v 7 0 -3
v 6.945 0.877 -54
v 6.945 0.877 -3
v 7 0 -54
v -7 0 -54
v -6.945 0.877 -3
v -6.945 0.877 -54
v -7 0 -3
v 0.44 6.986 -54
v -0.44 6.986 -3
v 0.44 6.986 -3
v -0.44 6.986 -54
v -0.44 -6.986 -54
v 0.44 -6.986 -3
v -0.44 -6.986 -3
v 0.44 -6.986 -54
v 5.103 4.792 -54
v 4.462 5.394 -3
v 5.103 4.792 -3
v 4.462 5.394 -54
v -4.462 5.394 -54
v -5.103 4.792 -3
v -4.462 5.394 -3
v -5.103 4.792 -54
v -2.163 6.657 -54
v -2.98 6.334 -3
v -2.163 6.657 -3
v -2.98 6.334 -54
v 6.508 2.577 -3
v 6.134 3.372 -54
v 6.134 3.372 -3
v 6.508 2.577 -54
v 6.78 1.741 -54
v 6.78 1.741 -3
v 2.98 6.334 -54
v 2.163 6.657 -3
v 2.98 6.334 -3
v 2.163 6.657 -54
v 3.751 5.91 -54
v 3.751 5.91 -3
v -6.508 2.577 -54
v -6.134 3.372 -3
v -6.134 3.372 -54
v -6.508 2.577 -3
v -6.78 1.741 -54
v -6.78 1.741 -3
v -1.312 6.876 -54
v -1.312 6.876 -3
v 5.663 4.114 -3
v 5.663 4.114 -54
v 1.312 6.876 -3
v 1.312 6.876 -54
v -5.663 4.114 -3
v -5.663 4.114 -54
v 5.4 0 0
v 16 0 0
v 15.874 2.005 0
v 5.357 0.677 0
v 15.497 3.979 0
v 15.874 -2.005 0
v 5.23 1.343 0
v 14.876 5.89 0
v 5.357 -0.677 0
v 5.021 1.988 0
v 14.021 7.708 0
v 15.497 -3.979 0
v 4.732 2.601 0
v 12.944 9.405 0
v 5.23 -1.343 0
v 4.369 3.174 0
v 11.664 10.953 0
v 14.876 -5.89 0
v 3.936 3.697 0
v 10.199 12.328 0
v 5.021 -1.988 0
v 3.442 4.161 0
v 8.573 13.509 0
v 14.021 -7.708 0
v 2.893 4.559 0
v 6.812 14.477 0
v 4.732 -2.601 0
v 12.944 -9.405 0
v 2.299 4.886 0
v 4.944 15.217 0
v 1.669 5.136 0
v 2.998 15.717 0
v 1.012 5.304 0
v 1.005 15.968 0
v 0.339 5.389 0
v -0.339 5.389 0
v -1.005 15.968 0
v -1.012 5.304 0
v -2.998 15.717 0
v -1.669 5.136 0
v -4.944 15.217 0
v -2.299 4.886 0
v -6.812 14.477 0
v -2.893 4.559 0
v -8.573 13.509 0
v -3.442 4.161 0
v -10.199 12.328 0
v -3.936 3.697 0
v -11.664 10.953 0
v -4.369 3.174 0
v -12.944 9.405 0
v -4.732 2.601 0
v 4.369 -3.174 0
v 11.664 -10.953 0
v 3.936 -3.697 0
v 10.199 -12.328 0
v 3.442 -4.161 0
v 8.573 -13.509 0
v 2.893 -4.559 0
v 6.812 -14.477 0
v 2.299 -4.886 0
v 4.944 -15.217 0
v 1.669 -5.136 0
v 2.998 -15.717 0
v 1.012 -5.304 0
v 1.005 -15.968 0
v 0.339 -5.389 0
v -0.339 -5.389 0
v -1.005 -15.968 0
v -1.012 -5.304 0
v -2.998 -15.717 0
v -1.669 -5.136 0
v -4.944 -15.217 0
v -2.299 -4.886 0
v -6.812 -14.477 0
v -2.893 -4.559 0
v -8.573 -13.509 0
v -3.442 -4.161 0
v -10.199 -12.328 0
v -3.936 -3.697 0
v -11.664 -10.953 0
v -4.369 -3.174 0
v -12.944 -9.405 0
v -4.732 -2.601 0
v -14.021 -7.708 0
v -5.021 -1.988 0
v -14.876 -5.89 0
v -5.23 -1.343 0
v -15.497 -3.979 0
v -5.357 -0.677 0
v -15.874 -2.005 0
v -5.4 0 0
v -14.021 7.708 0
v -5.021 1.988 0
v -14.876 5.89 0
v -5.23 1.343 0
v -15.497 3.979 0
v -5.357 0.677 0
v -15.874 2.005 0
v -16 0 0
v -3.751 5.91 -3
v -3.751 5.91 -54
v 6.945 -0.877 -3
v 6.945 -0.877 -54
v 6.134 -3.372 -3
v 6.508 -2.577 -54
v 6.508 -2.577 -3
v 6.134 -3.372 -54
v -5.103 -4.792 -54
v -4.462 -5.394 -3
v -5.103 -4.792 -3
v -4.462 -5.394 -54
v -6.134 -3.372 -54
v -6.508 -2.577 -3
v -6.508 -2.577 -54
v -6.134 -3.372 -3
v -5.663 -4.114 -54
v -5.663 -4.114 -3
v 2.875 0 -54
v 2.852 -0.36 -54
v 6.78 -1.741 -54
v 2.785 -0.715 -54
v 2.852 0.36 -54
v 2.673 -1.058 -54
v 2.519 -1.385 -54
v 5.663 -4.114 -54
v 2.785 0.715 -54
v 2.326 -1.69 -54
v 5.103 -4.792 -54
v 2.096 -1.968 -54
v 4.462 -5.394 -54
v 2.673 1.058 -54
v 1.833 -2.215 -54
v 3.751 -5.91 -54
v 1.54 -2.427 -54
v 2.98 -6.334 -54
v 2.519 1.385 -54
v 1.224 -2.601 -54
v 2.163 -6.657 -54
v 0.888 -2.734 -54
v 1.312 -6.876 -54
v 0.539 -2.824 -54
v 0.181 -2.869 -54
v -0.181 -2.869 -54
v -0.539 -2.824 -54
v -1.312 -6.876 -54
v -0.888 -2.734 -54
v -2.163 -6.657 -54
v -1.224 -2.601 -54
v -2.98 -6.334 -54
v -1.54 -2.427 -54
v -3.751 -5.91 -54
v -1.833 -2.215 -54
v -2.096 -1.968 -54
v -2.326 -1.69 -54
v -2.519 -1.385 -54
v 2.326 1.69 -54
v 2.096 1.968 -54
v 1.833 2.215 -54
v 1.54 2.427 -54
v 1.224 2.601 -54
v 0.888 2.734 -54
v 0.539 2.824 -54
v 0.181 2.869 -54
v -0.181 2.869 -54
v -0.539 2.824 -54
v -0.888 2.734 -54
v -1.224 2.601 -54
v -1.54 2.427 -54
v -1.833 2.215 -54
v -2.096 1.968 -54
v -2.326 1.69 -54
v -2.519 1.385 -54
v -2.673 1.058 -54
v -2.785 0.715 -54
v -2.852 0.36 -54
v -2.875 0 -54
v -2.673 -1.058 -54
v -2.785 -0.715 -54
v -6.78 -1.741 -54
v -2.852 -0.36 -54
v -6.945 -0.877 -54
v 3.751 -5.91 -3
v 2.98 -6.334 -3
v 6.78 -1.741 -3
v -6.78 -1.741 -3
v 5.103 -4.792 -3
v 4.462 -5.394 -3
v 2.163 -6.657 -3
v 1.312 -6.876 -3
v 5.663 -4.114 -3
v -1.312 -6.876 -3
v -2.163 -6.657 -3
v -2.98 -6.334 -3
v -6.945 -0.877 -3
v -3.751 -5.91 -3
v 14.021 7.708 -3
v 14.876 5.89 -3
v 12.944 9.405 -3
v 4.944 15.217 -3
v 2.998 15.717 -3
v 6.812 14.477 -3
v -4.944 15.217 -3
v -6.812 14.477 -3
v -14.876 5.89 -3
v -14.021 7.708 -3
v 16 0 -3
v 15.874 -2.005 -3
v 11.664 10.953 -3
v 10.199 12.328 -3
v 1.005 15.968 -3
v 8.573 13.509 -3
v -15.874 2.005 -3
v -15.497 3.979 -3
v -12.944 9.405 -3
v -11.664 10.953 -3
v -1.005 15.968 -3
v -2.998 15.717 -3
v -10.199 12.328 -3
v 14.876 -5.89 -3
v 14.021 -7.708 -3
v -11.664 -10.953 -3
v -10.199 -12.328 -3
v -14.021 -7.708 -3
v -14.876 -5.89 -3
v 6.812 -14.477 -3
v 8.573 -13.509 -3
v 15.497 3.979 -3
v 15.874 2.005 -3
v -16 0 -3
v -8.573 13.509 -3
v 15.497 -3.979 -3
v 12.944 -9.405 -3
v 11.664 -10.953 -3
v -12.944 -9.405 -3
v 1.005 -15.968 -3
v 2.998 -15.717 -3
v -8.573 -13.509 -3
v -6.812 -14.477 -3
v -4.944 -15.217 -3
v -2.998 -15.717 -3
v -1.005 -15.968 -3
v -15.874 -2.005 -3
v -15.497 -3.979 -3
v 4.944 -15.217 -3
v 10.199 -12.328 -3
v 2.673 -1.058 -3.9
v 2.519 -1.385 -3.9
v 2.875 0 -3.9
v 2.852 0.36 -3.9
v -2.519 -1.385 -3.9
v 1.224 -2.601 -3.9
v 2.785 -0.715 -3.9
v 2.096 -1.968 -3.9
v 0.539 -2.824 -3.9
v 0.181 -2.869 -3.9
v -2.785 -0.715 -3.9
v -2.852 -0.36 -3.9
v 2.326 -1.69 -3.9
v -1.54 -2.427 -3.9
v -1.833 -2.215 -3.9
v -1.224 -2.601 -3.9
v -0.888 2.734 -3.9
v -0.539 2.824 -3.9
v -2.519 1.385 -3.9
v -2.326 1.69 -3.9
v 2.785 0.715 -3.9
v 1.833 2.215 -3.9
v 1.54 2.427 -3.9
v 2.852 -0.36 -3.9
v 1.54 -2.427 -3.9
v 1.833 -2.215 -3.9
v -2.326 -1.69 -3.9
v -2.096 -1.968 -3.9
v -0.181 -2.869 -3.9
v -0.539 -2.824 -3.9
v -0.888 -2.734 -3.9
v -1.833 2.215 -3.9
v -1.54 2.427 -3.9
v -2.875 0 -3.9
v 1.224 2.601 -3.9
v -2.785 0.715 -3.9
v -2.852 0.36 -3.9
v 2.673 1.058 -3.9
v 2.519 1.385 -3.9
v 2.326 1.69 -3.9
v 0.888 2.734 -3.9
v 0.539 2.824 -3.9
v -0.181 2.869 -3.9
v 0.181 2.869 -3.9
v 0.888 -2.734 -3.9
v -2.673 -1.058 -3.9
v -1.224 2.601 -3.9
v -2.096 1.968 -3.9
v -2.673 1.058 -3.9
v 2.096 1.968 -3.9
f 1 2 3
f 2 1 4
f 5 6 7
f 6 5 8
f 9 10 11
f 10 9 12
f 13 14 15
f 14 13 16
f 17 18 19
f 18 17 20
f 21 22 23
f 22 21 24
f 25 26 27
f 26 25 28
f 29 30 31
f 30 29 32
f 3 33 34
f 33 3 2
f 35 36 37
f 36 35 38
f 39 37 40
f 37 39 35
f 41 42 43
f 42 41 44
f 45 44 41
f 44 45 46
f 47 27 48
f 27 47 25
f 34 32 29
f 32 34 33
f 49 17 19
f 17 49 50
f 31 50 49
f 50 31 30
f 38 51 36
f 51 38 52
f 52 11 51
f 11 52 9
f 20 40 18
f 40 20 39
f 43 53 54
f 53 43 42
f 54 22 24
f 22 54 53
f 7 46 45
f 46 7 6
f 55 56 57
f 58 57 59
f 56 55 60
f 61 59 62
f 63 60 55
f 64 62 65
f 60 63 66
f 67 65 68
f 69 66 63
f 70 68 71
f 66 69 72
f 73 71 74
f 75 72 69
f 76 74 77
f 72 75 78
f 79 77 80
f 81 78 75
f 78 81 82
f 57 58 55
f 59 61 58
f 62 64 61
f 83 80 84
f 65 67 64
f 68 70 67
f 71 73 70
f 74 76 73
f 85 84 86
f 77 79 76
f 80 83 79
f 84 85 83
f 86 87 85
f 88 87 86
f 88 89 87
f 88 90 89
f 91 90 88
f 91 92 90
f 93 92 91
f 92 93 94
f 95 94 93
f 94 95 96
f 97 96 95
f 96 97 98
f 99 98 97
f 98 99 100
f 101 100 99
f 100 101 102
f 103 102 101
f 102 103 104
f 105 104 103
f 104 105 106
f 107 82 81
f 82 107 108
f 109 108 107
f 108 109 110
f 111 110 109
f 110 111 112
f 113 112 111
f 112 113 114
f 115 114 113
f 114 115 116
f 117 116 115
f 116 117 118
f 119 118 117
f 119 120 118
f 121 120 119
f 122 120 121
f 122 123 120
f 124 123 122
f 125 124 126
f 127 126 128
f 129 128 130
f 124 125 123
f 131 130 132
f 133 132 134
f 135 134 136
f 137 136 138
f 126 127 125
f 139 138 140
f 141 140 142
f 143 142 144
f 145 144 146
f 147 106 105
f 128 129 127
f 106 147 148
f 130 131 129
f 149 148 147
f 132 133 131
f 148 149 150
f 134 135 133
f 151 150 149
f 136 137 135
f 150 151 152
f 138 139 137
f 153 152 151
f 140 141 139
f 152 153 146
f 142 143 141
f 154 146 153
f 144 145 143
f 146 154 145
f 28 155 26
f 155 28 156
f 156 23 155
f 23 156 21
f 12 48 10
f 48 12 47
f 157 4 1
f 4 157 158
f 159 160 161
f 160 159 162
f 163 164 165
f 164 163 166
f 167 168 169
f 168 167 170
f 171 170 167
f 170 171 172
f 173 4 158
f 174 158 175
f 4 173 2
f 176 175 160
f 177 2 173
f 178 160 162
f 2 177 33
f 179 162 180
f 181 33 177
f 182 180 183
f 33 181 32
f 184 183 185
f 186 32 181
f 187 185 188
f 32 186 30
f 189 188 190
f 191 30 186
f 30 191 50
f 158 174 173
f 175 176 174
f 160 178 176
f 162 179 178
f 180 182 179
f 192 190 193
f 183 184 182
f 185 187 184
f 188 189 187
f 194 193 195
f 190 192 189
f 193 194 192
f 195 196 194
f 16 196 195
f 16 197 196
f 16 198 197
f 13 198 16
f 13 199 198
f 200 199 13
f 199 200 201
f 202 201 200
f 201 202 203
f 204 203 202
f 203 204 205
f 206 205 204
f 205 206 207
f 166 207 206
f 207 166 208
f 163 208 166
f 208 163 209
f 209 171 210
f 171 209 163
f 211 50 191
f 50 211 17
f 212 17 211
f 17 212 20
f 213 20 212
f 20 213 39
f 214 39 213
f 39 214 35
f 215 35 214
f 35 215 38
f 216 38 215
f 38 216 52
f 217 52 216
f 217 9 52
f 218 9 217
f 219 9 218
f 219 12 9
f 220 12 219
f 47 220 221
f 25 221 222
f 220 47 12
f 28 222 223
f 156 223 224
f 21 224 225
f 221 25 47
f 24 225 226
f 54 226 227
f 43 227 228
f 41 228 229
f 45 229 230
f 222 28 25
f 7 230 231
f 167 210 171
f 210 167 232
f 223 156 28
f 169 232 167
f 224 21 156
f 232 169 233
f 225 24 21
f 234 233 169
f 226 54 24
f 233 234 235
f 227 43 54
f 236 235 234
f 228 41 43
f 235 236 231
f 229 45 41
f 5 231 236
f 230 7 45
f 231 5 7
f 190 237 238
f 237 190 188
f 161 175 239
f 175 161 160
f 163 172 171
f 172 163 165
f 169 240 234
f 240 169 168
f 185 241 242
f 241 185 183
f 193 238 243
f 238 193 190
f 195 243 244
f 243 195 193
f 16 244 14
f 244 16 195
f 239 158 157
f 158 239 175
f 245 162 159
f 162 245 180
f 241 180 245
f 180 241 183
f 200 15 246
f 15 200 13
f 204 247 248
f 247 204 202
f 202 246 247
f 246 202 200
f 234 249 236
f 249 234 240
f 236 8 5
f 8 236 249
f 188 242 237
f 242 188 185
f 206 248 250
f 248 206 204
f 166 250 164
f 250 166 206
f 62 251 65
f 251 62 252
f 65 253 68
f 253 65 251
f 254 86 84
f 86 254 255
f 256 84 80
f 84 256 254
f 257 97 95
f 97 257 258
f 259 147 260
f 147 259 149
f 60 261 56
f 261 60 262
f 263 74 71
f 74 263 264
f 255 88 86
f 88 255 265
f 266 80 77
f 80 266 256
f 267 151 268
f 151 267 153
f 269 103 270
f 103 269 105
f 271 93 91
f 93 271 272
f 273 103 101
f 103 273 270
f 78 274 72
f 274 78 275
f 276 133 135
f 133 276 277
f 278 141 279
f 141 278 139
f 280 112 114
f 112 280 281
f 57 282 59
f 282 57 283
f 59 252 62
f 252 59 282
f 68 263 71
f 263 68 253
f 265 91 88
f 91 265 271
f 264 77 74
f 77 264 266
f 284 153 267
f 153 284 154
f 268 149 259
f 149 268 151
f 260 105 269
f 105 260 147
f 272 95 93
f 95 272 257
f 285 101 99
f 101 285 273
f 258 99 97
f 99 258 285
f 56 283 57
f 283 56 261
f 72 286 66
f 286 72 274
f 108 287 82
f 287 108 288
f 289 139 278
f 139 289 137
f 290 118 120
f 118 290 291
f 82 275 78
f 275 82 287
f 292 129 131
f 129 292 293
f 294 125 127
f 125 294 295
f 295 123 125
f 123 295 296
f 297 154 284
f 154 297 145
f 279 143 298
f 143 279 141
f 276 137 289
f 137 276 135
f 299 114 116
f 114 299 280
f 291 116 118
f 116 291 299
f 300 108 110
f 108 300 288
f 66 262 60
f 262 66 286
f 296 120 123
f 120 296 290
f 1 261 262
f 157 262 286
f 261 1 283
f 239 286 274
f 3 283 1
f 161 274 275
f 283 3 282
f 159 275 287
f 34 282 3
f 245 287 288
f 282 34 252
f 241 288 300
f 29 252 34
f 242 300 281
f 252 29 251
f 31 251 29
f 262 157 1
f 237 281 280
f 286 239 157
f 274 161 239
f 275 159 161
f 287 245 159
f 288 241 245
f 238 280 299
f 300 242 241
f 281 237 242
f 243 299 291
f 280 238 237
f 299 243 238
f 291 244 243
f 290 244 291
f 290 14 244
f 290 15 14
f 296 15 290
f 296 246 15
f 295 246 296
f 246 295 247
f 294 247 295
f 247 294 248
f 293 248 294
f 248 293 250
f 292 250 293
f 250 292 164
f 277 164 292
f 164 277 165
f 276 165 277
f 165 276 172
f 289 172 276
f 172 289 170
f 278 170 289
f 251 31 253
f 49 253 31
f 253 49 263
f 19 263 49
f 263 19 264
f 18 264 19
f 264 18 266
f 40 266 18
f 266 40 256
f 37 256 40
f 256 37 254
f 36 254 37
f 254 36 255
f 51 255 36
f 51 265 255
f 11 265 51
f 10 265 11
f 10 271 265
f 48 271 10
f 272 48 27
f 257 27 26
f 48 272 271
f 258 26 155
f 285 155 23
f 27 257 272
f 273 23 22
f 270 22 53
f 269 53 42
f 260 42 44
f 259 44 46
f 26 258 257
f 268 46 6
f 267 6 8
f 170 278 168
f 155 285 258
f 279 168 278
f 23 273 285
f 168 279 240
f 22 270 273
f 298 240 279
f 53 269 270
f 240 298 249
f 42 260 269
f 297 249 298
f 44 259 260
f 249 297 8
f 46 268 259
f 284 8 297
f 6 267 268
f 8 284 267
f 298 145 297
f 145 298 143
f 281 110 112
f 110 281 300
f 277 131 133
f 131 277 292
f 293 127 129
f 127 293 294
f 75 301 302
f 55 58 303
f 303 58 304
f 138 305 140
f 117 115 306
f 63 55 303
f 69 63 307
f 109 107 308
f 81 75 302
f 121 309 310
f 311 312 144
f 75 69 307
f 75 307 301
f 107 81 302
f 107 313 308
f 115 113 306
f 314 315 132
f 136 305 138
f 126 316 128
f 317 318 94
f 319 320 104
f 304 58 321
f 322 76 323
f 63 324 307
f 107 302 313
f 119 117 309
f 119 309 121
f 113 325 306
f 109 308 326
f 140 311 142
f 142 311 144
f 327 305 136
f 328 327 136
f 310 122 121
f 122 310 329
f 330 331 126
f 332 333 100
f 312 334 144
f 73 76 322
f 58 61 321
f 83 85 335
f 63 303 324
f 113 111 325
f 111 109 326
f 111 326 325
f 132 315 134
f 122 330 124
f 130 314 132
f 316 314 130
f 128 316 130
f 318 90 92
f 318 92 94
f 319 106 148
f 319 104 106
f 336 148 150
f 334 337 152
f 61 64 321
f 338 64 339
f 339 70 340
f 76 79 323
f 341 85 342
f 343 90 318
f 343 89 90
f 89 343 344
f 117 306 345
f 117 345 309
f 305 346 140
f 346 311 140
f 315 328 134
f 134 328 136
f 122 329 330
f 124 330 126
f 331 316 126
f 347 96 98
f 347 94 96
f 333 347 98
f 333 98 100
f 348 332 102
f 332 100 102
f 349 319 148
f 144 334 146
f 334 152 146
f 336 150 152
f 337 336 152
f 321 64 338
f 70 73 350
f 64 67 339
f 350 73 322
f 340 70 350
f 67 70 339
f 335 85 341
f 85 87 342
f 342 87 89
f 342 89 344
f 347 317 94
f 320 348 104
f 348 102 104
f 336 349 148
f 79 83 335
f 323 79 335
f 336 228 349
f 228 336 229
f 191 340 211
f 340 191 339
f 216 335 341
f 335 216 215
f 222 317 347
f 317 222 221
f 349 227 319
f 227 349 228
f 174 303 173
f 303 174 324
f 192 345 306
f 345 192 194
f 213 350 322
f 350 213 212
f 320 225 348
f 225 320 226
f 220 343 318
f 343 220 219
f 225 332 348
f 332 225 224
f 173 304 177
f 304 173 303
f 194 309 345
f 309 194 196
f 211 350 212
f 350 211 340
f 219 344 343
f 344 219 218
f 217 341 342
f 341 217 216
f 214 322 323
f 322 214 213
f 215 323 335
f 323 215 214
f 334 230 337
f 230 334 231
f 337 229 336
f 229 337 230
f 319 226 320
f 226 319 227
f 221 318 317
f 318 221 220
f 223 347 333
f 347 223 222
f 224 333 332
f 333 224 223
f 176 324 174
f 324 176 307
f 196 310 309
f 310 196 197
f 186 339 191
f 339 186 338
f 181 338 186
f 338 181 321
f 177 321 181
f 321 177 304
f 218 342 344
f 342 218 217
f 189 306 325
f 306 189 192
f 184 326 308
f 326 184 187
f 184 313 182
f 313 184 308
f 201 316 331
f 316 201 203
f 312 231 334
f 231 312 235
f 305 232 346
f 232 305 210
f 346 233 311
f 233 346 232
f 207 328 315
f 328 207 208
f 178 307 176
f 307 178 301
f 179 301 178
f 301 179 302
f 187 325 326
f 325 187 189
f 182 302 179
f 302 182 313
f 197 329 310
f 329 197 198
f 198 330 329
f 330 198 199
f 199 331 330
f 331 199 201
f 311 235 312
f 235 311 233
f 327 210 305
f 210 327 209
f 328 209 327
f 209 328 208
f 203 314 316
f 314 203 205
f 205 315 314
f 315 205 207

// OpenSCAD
$fn = 50;


difference() {
	union() {
		translate(v = [0, 0, -54.0000000000]) {
			cylinder(h = 54, r = 7.0000000000);
		}
		translate(v = [0, 0, -3.0000000000]) {
			cylinder(h = 3, r = 16.0000000000);
		}
	}
	union() {
		translate(v = [0, 0, 0]) {
			rotate(a = [0, 0, 0]) {
				difference() {
					union() {
						#translate(v = [0, 0, -54.0000000000]) {
							cylinder(h = 54, r = 2.6000000000);
						}
						#translate(v = [0, 0, -3.9000000000]) {
							cylinder(h = 3.9000000000, r = 7.0000000000, r1 = 2.8750000000, r2 = 5.4000000000);
						}
						#translate(v = [0, 0, -54.0000000000]) {
							cylinder(h = 54, r = 2.8750000000);
						}
						#translate(v = [0, 0, -54.0000000000]) {
							cylinder(h = 54, r = 2.6000000000);
						}
					}
					union();
				}
			}
		}
	}
}
